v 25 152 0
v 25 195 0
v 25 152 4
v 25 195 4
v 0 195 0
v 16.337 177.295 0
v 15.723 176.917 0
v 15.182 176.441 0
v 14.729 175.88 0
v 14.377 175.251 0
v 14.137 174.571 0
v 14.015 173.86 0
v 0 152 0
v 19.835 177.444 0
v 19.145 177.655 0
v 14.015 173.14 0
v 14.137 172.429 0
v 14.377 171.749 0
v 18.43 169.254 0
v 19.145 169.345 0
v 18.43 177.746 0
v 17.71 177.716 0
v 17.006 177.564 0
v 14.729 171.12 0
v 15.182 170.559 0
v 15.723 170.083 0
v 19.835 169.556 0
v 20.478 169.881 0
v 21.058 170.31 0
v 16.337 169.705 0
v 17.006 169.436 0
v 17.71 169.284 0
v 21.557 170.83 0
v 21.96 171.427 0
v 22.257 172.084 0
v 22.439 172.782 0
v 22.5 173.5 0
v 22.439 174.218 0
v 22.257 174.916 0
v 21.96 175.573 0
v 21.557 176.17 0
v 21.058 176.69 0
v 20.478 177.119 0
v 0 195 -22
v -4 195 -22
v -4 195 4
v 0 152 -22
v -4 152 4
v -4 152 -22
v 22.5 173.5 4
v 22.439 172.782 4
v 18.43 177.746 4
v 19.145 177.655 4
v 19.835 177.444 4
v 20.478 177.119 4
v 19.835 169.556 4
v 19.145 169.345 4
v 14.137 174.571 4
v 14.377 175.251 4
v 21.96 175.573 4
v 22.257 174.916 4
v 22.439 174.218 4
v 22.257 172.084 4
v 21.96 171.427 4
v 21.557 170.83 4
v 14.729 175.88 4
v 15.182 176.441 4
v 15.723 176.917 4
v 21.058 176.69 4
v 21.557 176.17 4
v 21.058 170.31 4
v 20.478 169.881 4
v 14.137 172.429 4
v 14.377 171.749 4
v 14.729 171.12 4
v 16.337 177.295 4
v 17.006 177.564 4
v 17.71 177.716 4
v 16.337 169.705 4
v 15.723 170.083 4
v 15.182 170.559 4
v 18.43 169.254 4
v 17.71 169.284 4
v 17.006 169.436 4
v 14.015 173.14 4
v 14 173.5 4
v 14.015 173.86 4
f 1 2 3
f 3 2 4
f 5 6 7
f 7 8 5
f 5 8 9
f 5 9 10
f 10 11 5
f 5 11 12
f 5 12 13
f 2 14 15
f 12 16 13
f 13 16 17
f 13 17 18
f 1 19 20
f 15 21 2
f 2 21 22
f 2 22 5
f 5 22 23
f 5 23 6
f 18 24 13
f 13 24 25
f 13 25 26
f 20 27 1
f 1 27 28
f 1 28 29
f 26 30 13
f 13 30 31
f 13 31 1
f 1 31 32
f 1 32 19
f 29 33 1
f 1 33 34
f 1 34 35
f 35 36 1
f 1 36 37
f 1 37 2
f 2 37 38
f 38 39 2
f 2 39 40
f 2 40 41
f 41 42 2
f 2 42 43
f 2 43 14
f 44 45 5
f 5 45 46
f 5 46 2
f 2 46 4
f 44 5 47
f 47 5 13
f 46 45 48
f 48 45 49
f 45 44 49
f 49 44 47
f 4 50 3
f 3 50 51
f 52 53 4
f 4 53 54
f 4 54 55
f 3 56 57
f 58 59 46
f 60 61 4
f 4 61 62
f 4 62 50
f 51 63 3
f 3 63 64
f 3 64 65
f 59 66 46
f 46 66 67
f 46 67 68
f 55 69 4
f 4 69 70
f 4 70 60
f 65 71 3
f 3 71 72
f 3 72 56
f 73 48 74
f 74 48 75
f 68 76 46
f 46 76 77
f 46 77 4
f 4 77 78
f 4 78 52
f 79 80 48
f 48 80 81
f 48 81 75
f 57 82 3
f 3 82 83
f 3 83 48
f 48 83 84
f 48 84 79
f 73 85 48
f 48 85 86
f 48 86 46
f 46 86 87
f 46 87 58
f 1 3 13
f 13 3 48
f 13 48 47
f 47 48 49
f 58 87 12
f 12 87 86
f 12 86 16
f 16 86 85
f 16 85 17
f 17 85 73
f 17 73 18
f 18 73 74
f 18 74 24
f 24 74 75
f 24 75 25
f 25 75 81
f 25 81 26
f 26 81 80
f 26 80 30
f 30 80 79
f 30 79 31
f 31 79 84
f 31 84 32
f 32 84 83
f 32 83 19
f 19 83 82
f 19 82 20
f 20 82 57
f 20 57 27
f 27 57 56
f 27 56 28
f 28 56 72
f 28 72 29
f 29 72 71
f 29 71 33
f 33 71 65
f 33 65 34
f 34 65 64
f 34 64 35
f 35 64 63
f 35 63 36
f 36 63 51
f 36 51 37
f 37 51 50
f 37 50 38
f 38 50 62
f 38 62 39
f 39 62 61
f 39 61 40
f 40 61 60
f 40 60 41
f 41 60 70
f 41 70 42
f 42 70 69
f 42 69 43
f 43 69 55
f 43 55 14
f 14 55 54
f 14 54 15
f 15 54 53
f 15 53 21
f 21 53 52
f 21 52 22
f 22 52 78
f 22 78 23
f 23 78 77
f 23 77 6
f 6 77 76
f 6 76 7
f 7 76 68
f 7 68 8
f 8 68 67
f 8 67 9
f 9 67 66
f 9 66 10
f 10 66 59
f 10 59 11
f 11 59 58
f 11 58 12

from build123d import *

# Parameters (mm, degrees)
CROQUIS1_W              = 25
CROQUIS1_H              = 3
SALIENTE_EXTRUIR1_DEPTH = 195
CROQUIS2_R              = 4.25
CORTAR_EXTRUIR1_DEPTH   = 195
CROQUIS3_W              = 4
CROQUIS3_H              = 25
SALIENTE_EXTRUIR2_DEPTH = 195
SALIENTE_EXTRUIR3_START = 1
CROQUIS4_W              = 29
CROQUIS4_H              = 195
CROQUIS4_R              = 4.25
SALIENTE_EXTRUIR3_DEPTH = 1
CROQUIS5_W              = 149.811438776
CROQUIS5_H              = 152
CORTAR_EXTRUIR4_DEPTH   = 40
CROQUIS6_R              = 4.25
CORTAR_EXTRUIR5_DEPTH   = 40
SALIENTE_EXTRUIR4_DEPTH = 4


with BuildPart() as part:
    # Croquis1 → Saliente-Extruir1 (new body)
    with BuildSketch(Plane(origin=(0, 0, 0), x_dir=(1, 0, 0), z_dir=(0, 1, 0))):
        with Locations((12.5, -1.5)):
            Rectangle(CROQUIS1_W, CROQUIS1_H)
    extrude(amount=SALIENTE_EXTRUIR1_DEPTH)

    # Croquis2 → Cortar-Extruir1 (cut)
    with BuildSketch(Plane.XY.offset(3)):
        with Locations((18.25, 180)):
            Circle(CROQUIS2_R)
        with Locations((18.25, 97.5)):
            Circle(CROQUIS2_R)
        with Locations((18.25, 15)):
            Circle(CROQUIS2_R)
    extrude(amount=-CORTAR_EXTRUIR1_DEPTH, mode=Mode.SUBTRACT)

    # Croquis3 → Saliente-Extruir2 (add)
    with BuildSketch(Plane(origin=(0, 195, 0), x_dir=(1, 0, 0), z_dir=(0, 1, 0))):
        with Locations((-2, 9.5)):
            Rectangle(CROQUIS3_W, CROQUIS3_H)
    extrude(amount=-SALIENTE_EXTRUIR2_DEPTH)

    # Croquis4 → Saliente-Extruir3 (add)
    with BuildSketch(Plane.XY.offset(3).offset(SALIENTE_EXTRUIR3_START)):
        with Locations((10.5, 97.5)):
            Rectangle(CROQUIS4_W, CROQUIS4_H)
        with Locations((18.25, 15)):
            Circle(CROQUIS4_R, mode=Mode.SUBTRACT)
        with Locations((18.25, 97.5)):
            Circle(CROQUIS4_R, mode=Mode.SUBTRACT)
        with Locations((18.25, 180)):
            Circle(CROQUIS4_R, mode=Mode.SUBTRACT)
    extrude(amount=-SALIENTE_EXTRUIR3_DEPTH)

    # Croquis5 → Cortar-Extruir4 (cut)
    with BuildSketch(Plane.XY.offset(4)):
        with Locations((-49.905719388, 76)):
            Rectangle(CROQUIS5_W, CROQUIS5_H)
    extrude(amount=-CORTAR_EXTRUIR4_DEPTH, mode=Mode.SUBTRACT)

    # Croquis6 → Cortar-Extruir5 (cut)
    with BuildSketch(Plane.XY.offset(4)):
        with Locations((18.25, 173.5)):
            Circle(CROQUIS6_R)
    extrude(amount=-CORTAR_EXTRUIR5_DEPTH, mode=Mode.SUBTRACT)

    # Croquis7 → Saliente-Extruir4 (add)
    with BuildSketch(Plane.XY.offset(4)):
        with BuildLine():
            ThreePointArc((20.988612788, 176.75), (22.103673854, 178.207878959), (22.5, 180))
            ThreePointArc((22.5, 180), (16.457878959, 183.853673854), (15.511387212, 176.75))
            ThreePointArc((15.511387212, 176.75), (18.25, 177.75), (20.988612788, 176.75))
        make_face()
    extrude(amount=-SALIENTE_EXTRUIR4_DEPTH)


solid = part.part
